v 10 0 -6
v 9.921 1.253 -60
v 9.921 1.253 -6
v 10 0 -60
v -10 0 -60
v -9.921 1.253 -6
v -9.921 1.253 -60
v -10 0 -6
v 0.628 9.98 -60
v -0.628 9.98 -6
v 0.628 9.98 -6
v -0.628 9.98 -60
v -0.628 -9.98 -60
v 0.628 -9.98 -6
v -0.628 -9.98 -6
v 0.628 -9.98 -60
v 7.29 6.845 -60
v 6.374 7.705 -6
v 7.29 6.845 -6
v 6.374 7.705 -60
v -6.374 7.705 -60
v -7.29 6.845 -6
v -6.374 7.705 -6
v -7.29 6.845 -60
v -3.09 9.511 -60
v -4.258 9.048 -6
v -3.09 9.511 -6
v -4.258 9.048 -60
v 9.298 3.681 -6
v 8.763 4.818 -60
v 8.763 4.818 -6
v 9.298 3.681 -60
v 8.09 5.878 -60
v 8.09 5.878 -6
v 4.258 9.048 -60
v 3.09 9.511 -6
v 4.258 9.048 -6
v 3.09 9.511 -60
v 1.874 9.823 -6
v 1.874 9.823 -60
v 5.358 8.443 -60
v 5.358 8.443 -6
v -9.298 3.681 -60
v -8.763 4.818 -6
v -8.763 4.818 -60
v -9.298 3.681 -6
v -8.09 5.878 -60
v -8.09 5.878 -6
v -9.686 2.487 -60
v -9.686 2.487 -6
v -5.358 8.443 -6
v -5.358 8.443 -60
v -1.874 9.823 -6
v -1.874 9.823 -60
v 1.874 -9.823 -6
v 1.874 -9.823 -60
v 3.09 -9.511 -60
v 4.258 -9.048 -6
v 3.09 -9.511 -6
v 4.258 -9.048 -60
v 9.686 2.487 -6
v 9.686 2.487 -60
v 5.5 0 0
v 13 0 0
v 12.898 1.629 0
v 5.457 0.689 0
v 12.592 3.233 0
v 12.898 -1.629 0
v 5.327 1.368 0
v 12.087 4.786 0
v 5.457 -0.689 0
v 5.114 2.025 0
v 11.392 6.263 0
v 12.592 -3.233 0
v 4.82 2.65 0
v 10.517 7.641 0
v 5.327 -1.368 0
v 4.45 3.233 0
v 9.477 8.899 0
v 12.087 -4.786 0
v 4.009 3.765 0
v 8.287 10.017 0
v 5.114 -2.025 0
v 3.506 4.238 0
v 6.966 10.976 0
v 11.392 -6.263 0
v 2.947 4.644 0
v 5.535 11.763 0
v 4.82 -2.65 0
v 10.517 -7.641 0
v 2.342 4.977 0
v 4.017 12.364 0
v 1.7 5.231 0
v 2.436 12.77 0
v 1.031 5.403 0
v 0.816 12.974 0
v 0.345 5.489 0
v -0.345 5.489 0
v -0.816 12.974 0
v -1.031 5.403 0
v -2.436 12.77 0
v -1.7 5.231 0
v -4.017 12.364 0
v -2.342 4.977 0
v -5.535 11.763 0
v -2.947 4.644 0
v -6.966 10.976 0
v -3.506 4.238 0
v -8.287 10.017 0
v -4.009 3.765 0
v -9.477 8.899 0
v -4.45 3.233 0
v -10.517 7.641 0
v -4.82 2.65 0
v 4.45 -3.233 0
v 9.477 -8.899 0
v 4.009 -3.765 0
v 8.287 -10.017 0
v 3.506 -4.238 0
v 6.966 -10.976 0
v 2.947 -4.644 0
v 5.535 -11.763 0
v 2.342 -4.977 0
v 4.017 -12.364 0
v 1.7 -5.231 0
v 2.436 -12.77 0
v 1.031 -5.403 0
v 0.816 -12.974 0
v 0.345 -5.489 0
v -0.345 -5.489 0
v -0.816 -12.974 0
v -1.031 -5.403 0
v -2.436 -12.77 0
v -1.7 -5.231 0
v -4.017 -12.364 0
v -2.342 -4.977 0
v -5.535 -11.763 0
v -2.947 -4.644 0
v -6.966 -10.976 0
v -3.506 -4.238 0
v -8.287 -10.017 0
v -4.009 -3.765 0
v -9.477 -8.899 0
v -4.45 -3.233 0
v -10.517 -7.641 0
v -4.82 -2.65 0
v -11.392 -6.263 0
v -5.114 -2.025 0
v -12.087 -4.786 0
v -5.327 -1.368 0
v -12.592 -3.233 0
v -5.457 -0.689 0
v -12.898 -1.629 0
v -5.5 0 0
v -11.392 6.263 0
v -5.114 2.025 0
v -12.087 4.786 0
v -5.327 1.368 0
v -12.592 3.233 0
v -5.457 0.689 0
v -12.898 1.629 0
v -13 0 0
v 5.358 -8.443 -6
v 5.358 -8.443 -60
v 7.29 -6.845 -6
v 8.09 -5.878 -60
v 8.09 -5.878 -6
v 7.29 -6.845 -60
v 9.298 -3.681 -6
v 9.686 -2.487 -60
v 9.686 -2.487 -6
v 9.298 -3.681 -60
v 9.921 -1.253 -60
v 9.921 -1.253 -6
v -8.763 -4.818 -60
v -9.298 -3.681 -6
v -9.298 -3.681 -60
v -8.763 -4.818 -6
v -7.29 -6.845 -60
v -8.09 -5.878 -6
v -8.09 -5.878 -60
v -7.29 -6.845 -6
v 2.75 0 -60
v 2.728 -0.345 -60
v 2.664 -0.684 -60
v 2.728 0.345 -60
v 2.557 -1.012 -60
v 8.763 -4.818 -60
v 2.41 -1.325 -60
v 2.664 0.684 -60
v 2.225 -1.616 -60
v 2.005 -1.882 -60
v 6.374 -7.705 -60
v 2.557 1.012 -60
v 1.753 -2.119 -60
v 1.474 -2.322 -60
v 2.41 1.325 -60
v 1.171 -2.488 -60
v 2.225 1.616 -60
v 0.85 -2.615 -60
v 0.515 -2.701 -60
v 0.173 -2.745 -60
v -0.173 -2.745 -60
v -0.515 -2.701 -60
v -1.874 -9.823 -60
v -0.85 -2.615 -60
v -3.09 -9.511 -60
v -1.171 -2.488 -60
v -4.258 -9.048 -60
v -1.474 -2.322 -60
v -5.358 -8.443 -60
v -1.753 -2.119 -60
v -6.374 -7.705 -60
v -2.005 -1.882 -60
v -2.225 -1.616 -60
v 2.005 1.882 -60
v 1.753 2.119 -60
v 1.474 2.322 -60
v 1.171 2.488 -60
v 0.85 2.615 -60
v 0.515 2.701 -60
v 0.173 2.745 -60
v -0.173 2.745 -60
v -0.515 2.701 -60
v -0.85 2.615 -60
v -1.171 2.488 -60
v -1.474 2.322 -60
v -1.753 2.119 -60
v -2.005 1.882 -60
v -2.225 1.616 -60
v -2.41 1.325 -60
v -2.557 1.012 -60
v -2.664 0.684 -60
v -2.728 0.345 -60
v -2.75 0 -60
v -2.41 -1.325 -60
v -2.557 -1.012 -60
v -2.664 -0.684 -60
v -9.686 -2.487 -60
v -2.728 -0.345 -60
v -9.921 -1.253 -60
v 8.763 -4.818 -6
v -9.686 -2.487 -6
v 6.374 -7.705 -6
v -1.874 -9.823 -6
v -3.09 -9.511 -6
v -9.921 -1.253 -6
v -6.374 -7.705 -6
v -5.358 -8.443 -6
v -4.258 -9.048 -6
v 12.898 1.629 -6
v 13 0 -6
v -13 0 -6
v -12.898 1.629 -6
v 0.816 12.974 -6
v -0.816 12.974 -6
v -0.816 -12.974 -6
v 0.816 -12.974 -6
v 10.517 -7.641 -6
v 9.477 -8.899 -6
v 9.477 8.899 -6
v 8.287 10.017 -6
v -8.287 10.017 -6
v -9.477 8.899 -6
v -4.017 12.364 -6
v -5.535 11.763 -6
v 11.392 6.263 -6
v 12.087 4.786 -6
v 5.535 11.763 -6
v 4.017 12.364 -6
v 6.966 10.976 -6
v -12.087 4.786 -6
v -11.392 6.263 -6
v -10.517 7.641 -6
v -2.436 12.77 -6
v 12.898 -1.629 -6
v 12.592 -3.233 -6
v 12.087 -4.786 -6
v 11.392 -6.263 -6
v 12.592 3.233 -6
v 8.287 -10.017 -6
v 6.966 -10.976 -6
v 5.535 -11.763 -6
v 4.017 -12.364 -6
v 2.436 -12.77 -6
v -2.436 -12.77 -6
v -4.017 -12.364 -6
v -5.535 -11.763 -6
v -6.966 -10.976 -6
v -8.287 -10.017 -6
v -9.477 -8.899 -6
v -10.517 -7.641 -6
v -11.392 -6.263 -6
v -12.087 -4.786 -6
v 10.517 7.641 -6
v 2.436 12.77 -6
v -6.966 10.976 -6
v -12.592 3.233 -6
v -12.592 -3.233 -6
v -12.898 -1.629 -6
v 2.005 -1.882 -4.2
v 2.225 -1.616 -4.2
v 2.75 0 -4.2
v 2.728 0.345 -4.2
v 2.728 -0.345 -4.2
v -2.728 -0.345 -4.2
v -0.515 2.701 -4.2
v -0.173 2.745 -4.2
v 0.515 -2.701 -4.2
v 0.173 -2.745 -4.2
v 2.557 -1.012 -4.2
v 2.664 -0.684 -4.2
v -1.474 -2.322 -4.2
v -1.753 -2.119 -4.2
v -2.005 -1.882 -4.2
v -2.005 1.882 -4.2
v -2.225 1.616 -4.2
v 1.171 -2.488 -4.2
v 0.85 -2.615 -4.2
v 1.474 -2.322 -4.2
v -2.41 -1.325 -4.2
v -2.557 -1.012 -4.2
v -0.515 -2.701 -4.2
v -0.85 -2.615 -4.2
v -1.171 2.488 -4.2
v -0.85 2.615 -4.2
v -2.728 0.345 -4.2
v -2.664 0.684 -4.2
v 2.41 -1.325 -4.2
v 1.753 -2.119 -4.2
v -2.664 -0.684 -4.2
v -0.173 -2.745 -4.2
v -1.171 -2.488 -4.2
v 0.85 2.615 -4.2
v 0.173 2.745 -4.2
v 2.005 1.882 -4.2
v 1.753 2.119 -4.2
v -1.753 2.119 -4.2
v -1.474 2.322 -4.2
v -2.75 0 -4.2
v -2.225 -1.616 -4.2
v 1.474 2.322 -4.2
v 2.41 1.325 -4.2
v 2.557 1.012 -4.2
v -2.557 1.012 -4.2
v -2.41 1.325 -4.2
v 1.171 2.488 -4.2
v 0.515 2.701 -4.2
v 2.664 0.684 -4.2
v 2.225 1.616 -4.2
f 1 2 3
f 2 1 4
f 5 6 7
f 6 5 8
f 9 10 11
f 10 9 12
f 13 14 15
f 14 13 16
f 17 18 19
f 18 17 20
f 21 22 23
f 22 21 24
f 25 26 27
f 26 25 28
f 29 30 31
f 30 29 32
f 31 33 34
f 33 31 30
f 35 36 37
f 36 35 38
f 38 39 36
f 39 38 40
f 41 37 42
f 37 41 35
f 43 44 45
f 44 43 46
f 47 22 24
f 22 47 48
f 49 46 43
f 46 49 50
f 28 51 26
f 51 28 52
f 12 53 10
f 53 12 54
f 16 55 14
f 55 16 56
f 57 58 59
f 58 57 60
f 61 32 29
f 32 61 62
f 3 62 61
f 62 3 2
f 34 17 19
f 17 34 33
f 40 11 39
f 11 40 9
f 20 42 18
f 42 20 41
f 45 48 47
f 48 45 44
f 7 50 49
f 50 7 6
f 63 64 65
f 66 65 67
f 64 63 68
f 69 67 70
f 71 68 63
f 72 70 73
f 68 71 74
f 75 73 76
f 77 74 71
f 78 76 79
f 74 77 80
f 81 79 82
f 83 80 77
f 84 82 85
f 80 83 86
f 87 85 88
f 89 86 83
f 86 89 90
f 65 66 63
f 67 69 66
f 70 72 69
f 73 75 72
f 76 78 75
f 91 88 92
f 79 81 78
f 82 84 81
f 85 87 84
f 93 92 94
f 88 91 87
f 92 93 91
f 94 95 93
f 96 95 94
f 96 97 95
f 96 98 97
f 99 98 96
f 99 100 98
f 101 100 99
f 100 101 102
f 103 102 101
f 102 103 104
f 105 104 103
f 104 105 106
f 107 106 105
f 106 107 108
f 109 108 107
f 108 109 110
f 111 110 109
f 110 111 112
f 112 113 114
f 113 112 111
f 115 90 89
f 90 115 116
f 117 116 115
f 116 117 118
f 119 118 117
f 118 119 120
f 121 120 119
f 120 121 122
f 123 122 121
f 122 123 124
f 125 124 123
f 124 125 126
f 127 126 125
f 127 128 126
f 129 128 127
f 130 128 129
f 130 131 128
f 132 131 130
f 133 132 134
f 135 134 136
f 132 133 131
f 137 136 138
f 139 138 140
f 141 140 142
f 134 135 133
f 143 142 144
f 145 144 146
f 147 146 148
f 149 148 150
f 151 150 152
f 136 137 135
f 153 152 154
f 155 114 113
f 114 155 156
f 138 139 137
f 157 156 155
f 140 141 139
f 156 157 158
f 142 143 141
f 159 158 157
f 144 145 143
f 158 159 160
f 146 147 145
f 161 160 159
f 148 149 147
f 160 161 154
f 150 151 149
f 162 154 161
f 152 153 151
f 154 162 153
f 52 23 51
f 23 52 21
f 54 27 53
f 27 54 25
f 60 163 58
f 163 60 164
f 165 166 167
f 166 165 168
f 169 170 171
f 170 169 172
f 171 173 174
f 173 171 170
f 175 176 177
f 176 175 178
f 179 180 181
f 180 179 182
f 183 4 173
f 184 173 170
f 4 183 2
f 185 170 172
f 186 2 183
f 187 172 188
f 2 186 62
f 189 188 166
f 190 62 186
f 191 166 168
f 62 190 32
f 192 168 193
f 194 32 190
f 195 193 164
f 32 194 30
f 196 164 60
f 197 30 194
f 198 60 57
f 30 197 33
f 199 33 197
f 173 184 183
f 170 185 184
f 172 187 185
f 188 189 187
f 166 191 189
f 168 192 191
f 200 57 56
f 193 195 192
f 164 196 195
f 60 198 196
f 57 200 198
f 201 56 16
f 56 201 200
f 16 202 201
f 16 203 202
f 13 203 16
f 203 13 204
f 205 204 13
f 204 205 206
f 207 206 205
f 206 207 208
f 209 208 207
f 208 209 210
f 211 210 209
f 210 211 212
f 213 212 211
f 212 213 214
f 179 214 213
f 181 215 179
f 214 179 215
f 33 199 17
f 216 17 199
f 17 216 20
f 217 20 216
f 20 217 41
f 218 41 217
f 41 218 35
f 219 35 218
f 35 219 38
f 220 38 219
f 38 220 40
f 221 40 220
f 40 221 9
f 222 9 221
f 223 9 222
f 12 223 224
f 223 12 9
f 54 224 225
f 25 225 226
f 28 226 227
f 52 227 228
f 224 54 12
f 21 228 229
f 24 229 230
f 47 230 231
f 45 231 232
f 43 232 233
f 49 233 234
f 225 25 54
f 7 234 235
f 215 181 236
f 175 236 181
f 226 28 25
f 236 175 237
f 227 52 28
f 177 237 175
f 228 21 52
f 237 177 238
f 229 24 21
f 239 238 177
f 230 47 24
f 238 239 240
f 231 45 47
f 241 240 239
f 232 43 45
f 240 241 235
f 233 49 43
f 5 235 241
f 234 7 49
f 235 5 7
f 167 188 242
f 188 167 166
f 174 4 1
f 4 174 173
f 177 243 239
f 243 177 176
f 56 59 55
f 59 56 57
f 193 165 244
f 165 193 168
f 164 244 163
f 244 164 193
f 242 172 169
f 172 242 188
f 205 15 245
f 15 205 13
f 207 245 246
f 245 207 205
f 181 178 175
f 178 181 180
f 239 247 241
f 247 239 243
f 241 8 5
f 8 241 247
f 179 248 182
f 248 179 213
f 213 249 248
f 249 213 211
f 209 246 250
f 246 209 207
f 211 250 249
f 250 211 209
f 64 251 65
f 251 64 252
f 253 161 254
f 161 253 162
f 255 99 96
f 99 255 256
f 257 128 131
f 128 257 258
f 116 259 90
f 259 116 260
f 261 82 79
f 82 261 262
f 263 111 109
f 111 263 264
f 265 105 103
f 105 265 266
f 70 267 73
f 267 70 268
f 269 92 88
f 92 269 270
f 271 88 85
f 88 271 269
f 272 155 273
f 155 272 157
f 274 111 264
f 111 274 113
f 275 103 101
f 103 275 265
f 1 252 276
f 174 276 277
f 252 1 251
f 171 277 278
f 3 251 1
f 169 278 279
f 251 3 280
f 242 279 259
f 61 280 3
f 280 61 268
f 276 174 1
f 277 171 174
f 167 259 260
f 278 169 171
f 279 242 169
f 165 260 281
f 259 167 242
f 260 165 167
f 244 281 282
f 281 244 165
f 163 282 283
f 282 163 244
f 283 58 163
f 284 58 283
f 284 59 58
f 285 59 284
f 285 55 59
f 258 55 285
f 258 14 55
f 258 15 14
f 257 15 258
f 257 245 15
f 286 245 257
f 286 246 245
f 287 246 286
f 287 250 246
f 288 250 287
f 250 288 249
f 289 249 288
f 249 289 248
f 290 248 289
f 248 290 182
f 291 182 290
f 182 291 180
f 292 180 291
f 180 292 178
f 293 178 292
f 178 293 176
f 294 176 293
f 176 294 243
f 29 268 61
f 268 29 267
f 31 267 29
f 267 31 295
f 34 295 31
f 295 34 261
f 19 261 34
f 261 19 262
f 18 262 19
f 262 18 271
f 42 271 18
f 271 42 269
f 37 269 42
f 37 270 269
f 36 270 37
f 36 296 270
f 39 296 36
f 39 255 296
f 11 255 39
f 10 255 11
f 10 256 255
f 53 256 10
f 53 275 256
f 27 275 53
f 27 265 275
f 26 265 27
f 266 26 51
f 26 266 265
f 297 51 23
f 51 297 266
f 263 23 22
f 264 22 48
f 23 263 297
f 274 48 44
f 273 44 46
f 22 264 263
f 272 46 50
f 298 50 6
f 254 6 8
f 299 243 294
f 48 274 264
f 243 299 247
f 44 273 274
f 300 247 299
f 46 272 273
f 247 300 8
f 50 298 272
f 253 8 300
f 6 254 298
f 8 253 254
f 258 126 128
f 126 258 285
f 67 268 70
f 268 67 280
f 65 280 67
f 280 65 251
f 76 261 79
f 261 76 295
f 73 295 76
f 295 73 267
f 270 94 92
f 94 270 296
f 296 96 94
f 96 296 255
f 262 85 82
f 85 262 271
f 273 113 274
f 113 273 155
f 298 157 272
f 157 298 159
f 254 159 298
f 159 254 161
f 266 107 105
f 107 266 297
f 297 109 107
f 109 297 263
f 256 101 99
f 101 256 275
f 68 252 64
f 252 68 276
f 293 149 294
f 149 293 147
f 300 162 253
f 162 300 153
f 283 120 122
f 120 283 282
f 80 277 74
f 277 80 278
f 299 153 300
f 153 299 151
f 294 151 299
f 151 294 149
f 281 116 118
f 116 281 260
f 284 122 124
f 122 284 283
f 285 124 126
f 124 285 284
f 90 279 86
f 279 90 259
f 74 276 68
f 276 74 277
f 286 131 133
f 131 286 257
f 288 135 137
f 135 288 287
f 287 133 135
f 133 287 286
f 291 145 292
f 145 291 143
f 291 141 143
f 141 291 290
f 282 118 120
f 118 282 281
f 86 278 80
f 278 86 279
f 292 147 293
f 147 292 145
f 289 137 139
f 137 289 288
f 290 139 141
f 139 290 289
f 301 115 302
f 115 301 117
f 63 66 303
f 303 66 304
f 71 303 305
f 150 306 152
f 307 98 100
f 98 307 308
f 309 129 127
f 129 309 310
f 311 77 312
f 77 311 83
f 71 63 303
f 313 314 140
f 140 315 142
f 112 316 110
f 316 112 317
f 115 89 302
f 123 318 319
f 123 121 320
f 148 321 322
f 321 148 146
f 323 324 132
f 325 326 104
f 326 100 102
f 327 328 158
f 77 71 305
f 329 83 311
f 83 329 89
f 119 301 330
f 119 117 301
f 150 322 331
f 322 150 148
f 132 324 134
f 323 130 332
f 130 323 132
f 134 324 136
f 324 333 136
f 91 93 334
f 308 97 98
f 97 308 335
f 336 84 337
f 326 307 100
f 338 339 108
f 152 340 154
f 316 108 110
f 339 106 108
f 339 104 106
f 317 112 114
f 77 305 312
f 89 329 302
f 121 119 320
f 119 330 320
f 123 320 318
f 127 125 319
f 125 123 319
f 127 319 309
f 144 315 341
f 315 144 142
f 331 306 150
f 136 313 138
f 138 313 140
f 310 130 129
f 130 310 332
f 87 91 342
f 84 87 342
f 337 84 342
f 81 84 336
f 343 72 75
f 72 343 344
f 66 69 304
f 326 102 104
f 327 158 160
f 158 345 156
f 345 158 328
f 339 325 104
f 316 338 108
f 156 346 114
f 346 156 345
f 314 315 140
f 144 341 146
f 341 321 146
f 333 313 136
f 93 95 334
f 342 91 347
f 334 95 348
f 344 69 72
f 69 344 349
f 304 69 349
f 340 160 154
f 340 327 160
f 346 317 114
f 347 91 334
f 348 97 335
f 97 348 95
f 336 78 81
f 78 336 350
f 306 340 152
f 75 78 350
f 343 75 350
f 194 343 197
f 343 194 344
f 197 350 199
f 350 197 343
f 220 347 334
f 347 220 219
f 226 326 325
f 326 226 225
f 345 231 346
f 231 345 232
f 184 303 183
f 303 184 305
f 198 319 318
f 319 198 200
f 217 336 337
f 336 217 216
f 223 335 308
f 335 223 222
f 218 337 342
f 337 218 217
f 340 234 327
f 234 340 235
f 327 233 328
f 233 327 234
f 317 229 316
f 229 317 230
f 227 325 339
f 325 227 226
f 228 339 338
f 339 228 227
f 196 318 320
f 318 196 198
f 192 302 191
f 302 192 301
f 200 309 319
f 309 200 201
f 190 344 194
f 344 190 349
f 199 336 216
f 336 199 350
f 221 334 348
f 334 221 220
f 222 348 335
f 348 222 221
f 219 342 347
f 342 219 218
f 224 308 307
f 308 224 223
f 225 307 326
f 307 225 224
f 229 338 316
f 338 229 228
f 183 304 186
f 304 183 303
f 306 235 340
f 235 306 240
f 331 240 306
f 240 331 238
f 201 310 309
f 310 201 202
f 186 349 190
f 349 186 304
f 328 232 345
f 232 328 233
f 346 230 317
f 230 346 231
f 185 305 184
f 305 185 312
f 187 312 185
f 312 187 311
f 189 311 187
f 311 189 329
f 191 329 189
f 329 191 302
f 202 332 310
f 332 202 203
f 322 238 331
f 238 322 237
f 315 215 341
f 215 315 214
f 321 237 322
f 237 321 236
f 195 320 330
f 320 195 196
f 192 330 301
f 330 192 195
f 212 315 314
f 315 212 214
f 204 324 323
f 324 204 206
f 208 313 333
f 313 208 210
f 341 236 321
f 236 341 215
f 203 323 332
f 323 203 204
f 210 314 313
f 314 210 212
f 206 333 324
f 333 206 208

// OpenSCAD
$fn = 50;


difference() {
	union() {
		translate(v = [0, 0, -60.0000000000]) {
			cylinder(h = 60, r = 10.0000000000);
		}
		translate(v = [0, 0, -6.0000000000]) {
			cylinder(h = 6, r = 13.0000000000);
		}
	}
	union() {
		translate(v = [0, 0, 0]) {
			rotate(a = [0, 0, 0]) {
				difference() {
					union() {
						#translate(v = [0, 0, -60.0000000000]) {
							cylinder(h = 60, r = 2.2500000000);
						}
						#translate(v = [0, 0, -4.2000000000]) {
							cylinder(h = 4.2000000000, r = 10.0000000000, r1 = 2.7500000000, r2 = 5.5000000000);
						}
						#translate(v = [0, 0, -60.0000000000]) {
							cylinder(h = 60, r = 2.7500000000);
						}
						#translate(v = [0, 0, -60.0000000000]) {
							cylinder(h = 60, r = 2.2500000000);
						}
					}
					union();
				}
			}
		}
	}
}
